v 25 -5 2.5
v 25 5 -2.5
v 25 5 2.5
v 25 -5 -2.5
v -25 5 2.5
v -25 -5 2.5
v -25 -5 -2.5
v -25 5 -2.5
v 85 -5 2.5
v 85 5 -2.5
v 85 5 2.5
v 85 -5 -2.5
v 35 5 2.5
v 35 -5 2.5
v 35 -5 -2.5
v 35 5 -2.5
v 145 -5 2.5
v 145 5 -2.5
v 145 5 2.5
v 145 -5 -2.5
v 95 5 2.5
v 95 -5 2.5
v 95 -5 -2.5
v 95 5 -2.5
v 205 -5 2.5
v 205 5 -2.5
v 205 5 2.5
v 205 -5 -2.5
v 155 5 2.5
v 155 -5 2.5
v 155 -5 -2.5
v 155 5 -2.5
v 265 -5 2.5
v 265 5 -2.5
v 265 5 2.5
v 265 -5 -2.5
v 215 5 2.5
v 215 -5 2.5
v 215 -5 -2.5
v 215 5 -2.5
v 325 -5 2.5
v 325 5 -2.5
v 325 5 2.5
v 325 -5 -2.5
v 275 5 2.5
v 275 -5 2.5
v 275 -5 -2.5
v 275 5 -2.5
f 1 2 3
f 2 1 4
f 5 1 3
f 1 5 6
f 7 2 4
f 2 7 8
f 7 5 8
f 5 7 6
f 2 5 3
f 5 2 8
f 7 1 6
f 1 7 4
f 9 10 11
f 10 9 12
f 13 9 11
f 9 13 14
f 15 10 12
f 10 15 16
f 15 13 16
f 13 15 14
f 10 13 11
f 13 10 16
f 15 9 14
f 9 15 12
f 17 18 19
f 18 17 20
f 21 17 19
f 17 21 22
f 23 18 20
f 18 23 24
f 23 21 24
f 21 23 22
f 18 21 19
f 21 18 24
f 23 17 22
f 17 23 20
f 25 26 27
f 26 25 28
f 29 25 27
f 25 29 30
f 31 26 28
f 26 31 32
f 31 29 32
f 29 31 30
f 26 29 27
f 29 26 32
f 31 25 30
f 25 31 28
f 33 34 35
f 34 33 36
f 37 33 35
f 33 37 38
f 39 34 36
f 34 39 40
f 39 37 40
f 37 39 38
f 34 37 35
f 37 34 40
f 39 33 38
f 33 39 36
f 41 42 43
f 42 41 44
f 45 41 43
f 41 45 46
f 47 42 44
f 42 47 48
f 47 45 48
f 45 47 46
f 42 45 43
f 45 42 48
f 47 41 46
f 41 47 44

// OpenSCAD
// Define dimensions for the rectangular bar
module rectangular_bar(length, width, thickness) {
    cube([length, width, thickness], center=true);
}

// Parameters for the rectangular bars
length = 50;  // Length of the bar
width = 10;   // Width of the bar
thickness = 5; // Thickness of the bar
spacing = 60; // Spacing between bars (adjusted for uniformity)

// Generate the six rectangular bars in a linear arrangement
translate([0, 0, 0]) rectangular_bar(length, width, thickness);
translate([spacing, 0, 0]) rectangular_bar(length, width, thickness);
translate([2 * spacing, 0, 0]) rectangular_bar(length, width, thickness);
translate([3 * spacing, 0, 0]) rectangular_bar(length, width, thickness);
translate([4 * spacing, 0, 0]) rectangular_bar(length, width, thickness);
translate([5 * spacing, 0, 0]) rectangular_bar(length, width, thickness);
